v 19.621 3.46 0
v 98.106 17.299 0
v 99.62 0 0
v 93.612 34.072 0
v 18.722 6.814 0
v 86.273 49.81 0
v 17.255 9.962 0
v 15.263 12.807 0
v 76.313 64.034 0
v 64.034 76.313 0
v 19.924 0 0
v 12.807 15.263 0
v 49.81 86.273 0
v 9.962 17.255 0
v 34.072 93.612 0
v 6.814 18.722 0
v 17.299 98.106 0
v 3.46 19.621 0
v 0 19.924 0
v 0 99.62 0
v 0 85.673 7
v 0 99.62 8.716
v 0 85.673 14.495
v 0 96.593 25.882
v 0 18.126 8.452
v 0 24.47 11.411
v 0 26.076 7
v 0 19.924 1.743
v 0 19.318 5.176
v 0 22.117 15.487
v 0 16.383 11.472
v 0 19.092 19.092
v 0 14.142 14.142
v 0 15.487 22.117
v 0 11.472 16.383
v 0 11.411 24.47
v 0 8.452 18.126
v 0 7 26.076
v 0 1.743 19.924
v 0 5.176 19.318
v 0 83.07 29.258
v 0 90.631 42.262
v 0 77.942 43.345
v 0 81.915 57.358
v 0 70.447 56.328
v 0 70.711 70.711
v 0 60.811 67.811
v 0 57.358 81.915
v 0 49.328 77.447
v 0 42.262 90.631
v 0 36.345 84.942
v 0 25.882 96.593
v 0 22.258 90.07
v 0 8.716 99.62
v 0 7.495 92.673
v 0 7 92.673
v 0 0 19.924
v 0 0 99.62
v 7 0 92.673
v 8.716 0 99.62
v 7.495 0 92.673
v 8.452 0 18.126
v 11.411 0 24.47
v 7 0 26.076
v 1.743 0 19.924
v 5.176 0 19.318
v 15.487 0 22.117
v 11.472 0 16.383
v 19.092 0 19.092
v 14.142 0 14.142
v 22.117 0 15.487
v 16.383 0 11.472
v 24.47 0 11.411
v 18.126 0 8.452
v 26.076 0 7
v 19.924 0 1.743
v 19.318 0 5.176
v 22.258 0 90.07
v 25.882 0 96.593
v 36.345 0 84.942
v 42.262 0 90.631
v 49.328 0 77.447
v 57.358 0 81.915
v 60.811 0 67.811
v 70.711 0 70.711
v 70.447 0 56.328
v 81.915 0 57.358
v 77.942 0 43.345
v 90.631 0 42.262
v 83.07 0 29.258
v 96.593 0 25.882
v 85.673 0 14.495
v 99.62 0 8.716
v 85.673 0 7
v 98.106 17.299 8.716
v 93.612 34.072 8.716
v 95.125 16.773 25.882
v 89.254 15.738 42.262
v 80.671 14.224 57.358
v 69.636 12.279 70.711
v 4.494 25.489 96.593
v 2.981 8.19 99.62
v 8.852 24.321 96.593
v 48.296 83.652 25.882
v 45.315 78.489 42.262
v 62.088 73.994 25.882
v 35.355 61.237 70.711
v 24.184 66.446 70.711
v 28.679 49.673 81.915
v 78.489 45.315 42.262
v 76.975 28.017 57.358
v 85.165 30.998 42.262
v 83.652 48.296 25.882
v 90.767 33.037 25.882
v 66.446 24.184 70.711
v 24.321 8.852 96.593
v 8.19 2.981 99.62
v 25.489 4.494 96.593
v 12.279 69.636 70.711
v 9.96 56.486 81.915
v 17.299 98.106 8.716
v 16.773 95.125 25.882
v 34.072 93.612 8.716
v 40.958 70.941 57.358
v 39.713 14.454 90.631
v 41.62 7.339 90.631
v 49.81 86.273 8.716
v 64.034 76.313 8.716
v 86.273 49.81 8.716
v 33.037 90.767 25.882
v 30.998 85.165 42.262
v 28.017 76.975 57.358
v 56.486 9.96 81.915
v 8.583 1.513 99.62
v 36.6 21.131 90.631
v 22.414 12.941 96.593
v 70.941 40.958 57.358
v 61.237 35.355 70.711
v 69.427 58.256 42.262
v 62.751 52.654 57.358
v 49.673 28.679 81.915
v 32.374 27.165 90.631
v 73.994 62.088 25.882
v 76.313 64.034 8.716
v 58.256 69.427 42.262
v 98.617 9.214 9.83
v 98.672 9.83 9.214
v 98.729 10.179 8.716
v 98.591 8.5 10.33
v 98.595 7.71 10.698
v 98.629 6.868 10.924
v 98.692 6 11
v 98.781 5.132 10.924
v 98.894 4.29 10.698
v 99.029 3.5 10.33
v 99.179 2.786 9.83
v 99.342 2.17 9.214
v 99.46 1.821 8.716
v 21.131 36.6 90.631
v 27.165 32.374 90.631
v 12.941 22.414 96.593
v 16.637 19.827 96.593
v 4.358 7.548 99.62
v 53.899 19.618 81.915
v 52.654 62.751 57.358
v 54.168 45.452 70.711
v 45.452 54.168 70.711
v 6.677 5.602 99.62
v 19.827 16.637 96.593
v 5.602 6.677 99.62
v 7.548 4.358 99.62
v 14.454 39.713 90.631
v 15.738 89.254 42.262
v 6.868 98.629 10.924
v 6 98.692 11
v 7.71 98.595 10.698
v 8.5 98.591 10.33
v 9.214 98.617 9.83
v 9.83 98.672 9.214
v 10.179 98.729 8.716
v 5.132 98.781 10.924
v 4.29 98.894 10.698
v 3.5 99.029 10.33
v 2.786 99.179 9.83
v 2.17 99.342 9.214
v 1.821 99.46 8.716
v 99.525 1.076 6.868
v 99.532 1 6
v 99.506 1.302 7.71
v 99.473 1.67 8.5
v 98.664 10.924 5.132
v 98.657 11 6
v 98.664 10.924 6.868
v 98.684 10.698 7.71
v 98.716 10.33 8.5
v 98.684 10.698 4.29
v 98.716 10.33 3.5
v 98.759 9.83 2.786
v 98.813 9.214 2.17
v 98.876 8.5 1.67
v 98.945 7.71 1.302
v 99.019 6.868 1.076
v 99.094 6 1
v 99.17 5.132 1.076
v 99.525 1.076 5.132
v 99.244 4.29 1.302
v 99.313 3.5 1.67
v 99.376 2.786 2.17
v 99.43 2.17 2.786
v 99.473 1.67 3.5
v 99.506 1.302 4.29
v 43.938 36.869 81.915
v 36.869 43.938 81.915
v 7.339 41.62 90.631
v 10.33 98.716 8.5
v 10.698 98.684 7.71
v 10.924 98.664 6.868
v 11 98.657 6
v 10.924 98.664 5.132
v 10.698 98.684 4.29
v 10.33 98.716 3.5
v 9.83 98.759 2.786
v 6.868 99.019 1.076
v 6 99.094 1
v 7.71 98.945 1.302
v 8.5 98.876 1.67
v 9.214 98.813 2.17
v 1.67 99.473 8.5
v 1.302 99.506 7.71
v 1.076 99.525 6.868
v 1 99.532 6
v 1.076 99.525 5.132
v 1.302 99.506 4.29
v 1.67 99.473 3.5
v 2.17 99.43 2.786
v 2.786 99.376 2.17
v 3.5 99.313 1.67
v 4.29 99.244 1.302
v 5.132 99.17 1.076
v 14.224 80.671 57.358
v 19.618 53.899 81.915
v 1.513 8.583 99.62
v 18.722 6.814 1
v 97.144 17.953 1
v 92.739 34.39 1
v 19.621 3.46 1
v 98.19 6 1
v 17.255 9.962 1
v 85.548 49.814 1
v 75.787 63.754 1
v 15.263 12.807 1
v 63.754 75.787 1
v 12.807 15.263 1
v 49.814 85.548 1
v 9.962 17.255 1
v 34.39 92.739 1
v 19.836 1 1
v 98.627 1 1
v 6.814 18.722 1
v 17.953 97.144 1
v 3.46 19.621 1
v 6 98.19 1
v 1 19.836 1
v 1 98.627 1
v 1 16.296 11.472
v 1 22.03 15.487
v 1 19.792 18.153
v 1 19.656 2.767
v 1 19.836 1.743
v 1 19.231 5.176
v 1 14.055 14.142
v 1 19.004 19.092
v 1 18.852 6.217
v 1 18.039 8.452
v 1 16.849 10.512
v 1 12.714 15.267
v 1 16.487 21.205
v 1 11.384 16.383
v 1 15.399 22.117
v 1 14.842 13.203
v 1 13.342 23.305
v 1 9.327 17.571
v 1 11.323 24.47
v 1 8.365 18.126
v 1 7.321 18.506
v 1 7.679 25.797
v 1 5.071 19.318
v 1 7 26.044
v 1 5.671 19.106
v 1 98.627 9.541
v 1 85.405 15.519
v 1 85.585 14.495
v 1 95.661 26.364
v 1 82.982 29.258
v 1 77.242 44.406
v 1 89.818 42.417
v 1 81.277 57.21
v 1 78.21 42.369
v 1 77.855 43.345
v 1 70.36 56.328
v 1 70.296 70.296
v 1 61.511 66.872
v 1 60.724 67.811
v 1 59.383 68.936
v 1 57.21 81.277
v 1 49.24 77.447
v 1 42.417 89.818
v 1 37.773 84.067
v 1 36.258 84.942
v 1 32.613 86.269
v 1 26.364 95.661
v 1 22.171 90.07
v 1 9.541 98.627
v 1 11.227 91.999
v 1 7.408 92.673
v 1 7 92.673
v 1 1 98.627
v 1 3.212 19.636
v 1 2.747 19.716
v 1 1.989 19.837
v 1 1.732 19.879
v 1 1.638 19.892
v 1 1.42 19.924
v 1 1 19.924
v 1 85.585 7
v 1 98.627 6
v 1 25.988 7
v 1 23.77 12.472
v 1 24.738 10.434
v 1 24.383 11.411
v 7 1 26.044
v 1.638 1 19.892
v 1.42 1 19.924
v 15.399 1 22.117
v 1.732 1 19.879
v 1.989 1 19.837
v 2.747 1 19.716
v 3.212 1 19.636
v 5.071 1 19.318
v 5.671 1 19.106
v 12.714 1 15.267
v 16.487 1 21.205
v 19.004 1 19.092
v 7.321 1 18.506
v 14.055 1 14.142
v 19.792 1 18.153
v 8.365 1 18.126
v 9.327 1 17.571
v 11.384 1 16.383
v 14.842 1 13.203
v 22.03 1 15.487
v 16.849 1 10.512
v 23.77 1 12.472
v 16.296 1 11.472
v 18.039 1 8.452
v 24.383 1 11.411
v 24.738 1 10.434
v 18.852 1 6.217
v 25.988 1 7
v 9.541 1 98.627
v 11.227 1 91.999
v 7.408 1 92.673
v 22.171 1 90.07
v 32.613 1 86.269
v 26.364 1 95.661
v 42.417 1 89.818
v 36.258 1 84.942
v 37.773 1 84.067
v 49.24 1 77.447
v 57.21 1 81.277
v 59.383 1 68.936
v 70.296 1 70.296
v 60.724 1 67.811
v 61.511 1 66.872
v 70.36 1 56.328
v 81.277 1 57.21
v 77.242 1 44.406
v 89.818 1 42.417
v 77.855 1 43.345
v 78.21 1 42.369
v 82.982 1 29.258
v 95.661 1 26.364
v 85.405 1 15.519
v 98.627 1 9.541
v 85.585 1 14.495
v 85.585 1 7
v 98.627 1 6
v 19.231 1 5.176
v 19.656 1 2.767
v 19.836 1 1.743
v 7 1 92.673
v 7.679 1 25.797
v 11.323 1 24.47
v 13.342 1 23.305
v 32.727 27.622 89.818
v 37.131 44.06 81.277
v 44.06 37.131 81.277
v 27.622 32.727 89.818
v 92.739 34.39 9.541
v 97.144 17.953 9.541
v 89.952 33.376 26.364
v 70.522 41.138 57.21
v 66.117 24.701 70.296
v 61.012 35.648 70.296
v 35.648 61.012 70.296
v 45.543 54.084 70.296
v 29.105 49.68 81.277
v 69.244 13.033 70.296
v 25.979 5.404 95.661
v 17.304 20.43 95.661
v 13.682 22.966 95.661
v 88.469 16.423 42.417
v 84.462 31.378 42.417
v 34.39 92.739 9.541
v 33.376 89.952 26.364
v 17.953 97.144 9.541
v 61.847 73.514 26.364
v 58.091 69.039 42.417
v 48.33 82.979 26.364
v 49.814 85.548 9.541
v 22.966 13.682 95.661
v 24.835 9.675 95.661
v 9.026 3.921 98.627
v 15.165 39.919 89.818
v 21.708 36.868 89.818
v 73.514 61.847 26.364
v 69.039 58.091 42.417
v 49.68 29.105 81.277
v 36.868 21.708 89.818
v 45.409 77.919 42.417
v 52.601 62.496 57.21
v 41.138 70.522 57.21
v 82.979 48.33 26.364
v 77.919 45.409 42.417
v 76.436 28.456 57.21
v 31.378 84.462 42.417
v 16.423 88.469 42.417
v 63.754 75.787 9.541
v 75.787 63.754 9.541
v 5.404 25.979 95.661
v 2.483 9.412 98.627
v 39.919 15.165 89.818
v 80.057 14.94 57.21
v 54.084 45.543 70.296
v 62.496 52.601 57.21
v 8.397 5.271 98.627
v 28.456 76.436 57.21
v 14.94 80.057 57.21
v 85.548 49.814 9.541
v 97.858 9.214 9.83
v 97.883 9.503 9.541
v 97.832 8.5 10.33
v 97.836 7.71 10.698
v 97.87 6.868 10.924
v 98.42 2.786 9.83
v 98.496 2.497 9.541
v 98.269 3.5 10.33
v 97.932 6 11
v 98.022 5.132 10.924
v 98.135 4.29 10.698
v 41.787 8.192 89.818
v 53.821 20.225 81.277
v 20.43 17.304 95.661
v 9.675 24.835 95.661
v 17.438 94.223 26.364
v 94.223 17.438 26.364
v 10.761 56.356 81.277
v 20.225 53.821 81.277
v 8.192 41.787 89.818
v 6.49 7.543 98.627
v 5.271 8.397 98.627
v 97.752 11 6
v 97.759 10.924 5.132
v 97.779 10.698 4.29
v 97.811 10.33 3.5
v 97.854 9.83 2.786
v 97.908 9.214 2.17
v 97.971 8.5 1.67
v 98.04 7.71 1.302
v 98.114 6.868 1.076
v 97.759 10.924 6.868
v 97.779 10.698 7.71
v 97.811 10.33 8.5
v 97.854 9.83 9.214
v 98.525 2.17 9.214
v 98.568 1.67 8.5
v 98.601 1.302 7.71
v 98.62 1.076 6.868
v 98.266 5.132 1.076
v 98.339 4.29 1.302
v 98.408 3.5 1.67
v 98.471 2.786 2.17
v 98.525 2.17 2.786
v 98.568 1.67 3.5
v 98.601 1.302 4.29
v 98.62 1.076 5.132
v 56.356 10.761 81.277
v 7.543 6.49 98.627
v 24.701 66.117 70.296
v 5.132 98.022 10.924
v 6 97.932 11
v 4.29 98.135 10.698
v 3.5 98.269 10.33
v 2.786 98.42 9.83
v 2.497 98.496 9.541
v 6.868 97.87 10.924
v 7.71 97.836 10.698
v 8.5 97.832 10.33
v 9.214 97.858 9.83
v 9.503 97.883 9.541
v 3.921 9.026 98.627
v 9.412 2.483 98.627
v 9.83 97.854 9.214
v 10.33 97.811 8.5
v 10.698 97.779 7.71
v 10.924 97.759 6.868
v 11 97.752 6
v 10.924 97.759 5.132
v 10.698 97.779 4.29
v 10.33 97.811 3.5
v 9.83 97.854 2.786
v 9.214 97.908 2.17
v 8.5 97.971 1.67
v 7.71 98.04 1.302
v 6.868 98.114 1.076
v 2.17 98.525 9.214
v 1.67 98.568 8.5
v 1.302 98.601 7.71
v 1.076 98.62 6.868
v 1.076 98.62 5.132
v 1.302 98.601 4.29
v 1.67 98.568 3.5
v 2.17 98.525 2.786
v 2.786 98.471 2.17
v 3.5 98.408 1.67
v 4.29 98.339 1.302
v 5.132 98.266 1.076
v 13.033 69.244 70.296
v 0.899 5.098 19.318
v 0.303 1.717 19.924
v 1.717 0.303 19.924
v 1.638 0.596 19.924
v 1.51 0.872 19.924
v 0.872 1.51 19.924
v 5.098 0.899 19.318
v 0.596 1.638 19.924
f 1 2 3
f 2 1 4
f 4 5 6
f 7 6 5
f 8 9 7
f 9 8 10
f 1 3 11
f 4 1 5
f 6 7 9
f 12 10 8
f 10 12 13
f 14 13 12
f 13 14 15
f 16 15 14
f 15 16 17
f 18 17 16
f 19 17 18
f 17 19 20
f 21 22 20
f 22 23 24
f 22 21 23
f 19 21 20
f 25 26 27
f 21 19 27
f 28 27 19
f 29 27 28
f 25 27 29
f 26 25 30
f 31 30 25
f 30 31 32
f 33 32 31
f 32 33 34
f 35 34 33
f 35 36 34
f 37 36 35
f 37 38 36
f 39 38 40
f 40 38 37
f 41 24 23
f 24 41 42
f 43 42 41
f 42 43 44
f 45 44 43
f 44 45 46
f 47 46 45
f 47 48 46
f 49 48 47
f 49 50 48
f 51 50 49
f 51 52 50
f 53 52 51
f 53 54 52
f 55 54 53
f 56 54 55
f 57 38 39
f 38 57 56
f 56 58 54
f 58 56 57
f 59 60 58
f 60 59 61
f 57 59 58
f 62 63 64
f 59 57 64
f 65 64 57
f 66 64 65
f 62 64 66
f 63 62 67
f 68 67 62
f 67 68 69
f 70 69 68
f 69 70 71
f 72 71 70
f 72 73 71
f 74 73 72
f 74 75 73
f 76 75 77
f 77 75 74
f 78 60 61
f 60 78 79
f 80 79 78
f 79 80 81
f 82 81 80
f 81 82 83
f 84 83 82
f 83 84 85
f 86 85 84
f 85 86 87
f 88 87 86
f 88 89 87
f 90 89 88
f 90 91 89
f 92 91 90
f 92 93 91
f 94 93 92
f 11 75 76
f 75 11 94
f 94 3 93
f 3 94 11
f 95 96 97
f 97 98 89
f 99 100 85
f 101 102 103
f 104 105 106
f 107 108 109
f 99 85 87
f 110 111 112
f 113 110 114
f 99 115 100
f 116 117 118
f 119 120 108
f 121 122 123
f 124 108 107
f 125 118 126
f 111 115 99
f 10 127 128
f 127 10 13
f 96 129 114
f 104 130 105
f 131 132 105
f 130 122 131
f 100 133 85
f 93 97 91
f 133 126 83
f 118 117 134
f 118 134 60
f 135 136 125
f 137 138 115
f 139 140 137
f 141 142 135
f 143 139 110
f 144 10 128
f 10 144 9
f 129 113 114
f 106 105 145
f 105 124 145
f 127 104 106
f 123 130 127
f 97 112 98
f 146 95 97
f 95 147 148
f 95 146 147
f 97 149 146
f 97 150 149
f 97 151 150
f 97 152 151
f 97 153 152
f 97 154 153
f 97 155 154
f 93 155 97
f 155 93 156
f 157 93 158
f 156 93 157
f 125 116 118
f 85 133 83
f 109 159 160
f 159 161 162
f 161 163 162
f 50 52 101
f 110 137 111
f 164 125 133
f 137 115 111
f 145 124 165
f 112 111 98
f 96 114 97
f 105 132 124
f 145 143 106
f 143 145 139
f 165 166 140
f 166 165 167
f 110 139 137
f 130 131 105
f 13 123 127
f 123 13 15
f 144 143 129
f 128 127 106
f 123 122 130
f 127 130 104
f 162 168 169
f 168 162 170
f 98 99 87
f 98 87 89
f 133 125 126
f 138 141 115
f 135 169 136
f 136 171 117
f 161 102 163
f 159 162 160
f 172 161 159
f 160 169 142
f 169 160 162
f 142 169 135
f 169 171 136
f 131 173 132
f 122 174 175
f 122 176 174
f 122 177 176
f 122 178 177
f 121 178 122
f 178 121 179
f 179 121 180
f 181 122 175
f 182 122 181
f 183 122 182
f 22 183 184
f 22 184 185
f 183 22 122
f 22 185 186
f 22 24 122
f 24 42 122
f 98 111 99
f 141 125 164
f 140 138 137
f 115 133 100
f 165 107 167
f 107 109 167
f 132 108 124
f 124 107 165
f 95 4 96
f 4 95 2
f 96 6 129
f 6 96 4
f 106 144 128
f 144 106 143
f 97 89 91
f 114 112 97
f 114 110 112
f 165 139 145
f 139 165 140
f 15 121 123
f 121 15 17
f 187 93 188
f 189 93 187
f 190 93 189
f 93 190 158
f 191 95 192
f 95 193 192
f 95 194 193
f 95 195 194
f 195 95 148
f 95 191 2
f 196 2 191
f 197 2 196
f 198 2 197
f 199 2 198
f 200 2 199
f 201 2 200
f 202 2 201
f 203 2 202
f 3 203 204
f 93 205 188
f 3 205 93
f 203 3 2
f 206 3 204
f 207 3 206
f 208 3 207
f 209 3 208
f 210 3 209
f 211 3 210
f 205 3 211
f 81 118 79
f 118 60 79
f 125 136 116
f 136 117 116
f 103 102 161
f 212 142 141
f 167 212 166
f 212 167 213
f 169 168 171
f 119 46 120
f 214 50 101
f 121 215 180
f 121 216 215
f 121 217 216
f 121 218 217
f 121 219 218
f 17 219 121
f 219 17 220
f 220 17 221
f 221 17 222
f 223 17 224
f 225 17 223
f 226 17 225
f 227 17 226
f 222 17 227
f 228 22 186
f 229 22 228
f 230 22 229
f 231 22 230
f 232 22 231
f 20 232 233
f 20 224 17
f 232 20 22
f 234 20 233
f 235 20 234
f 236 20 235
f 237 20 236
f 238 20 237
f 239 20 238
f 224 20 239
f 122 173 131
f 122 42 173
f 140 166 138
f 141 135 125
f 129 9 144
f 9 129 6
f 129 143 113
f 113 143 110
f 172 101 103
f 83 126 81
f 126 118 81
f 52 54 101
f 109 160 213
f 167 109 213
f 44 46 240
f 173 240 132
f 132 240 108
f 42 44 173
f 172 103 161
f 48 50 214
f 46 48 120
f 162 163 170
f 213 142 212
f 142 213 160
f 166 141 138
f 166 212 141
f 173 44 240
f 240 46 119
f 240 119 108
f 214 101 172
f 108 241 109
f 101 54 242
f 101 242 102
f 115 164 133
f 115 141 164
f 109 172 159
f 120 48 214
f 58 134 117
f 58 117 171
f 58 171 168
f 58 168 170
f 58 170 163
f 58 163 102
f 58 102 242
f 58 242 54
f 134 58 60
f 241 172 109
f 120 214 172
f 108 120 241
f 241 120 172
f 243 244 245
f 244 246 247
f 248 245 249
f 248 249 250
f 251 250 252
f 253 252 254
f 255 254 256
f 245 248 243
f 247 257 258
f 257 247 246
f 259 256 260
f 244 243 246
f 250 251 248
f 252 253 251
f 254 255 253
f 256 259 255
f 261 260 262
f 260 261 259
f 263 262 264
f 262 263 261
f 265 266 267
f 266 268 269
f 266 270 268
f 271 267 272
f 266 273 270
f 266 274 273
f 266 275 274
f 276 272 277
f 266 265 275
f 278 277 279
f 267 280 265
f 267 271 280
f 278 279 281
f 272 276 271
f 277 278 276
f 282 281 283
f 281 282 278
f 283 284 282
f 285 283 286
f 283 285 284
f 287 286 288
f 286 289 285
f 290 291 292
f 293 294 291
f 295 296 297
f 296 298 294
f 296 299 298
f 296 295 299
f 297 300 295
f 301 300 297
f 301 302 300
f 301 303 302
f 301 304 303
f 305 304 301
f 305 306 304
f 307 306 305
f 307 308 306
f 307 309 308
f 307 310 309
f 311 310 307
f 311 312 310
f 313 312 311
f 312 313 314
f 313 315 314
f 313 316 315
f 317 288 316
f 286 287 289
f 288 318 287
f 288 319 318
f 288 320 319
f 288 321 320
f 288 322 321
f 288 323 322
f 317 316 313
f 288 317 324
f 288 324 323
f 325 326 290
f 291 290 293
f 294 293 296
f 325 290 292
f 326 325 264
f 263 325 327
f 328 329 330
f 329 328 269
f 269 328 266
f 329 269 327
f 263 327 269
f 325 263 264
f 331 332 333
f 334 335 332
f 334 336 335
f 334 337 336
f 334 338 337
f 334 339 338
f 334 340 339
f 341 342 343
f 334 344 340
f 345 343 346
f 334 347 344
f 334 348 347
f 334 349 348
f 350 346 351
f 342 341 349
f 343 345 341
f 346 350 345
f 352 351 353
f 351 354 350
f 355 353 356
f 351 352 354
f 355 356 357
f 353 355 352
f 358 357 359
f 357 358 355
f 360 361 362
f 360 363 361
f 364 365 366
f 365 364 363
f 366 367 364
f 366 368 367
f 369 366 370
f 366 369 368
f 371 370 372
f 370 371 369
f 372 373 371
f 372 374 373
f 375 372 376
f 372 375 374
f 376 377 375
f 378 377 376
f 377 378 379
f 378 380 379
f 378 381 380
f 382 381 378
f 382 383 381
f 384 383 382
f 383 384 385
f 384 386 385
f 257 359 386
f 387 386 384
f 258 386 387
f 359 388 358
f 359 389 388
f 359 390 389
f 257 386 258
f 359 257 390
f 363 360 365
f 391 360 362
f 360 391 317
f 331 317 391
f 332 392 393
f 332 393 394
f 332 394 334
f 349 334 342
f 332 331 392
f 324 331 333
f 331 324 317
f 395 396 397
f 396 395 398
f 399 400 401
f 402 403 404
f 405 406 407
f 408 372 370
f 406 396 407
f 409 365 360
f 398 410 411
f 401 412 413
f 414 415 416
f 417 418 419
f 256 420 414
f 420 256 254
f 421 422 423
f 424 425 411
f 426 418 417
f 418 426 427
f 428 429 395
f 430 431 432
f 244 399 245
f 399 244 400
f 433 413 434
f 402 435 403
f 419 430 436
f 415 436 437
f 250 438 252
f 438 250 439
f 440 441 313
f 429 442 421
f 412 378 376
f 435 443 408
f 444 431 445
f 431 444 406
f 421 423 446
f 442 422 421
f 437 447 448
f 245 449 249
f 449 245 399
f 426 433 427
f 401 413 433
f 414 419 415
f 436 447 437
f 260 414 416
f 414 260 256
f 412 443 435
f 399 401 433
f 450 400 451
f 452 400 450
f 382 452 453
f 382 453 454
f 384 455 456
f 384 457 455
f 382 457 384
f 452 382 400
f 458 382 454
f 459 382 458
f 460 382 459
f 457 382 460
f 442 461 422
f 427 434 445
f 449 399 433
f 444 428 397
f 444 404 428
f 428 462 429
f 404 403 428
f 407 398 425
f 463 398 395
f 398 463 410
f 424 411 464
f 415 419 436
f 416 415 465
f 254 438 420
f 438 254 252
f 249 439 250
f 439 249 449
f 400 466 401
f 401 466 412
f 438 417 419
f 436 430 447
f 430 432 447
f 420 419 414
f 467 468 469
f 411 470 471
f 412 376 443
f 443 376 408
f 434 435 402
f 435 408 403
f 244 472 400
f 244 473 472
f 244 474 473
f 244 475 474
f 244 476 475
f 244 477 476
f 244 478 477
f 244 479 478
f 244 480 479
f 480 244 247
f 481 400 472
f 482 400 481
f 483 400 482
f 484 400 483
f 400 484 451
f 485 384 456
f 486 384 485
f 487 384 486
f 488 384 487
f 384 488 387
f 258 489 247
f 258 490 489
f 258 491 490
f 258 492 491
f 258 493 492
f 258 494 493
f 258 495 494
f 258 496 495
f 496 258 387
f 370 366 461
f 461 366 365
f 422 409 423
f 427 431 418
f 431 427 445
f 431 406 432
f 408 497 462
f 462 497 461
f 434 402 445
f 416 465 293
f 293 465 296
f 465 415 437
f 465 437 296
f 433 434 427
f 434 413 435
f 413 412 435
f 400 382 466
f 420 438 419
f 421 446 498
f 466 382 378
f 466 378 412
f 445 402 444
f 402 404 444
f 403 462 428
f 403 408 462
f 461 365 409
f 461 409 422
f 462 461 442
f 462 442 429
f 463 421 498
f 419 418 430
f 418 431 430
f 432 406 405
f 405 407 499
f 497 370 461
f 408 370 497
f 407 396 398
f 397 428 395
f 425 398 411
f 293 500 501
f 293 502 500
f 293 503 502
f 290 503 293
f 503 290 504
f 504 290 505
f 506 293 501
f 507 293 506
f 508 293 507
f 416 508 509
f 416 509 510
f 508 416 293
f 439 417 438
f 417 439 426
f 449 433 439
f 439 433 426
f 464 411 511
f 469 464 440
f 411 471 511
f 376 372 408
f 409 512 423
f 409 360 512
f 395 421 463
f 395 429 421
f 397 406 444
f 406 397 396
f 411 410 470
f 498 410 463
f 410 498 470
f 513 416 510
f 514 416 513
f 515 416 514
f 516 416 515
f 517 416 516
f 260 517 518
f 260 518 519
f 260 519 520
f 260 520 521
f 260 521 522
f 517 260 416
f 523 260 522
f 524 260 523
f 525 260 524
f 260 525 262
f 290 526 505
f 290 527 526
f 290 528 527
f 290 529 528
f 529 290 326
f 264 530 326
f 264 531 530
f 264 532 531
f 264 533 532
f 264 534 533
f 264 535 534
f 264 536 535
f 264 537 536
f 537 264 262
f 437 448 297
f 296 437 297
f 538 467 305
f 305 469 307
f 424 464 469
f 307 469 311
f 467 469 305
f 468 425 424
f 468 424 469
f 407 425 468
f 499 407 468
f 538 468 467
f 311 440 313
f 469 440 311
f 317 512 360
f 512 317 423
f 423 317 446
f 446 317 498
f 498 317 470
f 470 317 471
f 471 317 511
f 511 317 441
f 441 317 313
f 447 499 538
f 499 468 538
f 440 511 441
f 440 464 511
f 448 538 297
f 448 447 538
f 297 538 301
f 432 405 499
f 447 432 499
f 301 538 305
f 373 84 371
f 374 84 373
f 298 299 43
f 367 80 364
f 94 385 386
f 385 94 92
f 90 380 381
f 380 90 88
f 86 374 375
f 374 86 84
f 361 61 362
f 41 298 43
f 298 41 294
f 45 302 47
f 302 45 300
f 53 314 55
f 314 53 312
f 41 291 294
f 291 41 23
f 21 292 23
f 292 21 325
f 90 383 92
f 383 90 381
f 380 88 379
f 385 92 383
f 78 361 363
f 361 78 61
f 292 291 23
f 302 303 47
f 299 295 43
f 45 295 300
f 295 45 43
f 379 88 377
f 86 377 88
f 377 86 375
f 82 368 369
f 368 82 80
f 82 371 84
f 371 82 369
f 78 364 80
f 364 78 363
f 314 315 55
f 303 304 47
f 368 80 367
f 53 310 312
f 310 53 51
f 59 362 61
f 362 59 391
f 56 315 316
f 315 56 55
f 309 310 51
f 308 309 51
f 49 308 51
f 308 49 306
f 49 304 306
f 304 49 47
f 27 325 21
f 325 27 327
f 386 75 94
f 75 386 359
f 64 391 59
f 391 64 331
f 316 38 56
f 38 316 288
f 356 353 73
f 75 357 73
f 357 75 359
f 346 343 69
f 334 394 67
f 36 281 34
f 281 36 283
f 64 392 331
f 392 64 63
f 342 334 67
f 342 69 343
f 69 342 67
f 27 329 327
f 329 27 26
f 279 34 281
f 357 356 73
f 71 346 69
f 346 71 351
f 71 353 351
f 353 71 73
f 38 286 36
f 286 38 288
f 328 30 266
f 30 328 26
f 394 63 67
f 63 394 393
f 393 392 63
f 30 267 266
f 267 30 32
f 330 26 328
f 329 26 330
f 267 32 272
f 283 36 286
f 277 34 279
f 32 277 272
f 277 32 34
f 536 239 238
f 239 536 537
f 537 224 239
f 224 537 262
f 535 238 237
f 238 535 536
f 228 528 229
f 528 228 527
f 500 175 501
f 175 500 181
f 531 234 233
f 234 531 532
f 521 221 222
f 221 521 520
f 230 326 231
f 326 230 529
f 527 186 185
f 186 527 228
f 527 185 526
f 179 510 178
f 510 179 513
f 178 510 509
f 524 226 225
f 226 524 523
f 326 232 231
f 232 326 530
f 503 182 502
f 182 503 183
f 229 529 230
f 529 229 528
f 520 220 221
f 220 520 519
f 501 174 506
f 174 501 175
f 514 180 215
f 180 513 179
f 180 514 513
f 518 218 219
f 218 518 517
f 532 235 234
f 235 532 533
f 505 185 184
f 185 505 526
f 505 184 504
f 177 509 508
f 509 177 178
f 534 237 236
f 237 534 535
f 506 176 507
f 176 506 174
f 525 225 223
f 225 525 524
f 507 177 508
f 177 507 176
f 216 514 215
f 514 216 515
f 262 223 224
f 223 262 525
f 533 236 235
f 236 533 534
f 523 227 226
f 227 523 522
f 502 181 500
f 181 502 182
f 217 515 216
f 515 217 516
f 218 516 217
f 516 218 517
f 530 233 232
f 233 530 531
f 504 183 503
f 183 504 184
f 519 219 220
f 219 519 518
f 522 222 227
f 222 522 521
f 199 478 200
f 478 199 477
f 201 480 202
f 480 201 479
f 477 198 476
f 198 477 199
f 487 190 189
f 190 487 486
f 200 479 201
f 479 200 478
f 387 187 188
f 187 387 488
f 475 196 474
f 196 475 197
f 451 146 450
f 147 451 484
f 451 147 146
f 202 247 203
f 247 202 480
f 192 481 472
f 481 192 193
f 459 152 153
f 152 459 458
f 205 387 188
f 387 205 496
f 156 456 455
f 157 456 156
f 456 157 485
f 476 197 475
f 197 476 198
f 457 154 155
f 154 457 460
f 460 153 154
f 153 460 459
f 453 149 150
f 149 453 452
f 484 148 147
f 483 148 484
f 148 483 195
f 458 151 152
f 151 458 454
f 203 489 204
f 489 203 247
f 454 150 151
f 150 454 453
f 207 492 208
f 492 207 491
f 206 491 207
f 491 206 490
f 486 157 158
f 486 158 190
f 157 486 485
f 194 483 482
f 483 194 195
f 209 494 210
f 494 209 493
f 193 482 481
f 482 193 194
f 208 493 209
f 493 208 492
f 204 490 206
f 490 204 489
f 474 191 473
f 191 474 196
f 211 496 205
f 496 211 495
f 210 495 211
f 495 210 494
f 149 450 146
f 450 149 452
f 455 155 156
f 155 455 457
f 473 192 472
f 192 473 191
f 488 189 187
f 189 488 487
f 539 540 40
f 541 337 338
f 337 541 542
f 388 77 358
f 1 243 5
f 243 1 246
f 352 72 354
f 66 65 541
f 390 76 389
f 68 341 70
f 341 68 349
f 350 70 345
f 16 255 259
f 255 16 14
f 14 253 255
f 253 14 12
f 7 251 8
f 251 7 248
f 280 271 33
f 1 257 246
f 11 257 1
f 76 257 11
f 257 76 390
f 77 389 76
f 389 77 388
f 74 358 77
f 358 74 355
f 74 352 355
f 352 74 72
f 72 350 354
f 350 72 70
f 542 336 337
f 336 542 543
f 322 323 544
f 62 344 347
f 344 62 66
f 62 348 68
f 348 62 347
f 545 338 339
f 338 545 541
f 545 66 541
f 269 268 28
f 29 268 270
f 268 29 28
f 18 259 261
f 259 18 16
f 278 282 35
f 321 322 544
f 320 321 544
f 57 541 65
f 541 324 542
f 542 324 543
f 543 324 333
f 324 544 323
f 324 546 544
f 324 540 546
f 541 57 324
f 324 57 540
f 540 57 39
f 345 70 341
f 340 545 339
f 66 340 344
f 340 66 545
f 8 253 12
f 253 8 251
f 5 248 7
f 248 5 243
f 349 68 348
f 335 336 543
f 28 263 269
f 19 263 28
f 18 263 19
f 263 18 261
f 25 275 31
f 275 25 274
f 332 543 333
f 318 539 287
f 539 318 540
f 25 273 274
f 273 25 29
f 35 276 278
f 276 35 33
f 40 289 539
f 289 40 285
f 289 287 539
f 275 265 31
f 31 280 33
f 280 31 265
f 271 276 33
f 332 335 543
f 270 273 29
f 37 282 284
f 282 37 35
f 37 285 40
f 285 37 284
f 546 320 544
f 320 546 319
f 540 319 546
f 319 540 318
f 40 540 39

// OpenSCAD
//in a corner there is a blasted power cable that needs a cover
$fn=36;
coverR = 100 ;
cableD = 10 ;
shellT = 1 ;
cornerR = 20 ;
sideH = 7; 
//the shell to fit in the corner of oscar's room
difference(){
    difference() {
        //Whole 1/8 sphere
        intersection() {
            cube([coverR,coverR,coverR]);
            sphere(r=coverR);
        }
        translate([shellT,shellT,shellT]) intersection() {
            cube([coverR,coverR,coverR]);
            sphere(r=coverR-2*shellT);
        }
    }
    //cable passthrough
    translate([shellT+cableD/2,0,cableD/2+shellT]) rotate([-90,90,0])cylinder(h=coverR+shellT,d=cableD);
    translate([0,cableD/2+shellT,cableD/2+shellT]) rotate([0,90,0])cylinder(h=coverR+shellT,d=cableD);
    //corner
    sphere(r=cornerR);
    //the inner inner volume for subtraction
    difference() {
        translate([0,0,sideH])intersection() {
            sphere(coverR-2*sideH);
            translate([-coverR,-coverR,0]) cube([2*coverR,2*coverR,coverR]);
        }
        translate([-sideH,-sideH,0])cube([2*sideH,2*sideH,coverR]);
        sphere(r=cornerR+sideH);
    }
}
